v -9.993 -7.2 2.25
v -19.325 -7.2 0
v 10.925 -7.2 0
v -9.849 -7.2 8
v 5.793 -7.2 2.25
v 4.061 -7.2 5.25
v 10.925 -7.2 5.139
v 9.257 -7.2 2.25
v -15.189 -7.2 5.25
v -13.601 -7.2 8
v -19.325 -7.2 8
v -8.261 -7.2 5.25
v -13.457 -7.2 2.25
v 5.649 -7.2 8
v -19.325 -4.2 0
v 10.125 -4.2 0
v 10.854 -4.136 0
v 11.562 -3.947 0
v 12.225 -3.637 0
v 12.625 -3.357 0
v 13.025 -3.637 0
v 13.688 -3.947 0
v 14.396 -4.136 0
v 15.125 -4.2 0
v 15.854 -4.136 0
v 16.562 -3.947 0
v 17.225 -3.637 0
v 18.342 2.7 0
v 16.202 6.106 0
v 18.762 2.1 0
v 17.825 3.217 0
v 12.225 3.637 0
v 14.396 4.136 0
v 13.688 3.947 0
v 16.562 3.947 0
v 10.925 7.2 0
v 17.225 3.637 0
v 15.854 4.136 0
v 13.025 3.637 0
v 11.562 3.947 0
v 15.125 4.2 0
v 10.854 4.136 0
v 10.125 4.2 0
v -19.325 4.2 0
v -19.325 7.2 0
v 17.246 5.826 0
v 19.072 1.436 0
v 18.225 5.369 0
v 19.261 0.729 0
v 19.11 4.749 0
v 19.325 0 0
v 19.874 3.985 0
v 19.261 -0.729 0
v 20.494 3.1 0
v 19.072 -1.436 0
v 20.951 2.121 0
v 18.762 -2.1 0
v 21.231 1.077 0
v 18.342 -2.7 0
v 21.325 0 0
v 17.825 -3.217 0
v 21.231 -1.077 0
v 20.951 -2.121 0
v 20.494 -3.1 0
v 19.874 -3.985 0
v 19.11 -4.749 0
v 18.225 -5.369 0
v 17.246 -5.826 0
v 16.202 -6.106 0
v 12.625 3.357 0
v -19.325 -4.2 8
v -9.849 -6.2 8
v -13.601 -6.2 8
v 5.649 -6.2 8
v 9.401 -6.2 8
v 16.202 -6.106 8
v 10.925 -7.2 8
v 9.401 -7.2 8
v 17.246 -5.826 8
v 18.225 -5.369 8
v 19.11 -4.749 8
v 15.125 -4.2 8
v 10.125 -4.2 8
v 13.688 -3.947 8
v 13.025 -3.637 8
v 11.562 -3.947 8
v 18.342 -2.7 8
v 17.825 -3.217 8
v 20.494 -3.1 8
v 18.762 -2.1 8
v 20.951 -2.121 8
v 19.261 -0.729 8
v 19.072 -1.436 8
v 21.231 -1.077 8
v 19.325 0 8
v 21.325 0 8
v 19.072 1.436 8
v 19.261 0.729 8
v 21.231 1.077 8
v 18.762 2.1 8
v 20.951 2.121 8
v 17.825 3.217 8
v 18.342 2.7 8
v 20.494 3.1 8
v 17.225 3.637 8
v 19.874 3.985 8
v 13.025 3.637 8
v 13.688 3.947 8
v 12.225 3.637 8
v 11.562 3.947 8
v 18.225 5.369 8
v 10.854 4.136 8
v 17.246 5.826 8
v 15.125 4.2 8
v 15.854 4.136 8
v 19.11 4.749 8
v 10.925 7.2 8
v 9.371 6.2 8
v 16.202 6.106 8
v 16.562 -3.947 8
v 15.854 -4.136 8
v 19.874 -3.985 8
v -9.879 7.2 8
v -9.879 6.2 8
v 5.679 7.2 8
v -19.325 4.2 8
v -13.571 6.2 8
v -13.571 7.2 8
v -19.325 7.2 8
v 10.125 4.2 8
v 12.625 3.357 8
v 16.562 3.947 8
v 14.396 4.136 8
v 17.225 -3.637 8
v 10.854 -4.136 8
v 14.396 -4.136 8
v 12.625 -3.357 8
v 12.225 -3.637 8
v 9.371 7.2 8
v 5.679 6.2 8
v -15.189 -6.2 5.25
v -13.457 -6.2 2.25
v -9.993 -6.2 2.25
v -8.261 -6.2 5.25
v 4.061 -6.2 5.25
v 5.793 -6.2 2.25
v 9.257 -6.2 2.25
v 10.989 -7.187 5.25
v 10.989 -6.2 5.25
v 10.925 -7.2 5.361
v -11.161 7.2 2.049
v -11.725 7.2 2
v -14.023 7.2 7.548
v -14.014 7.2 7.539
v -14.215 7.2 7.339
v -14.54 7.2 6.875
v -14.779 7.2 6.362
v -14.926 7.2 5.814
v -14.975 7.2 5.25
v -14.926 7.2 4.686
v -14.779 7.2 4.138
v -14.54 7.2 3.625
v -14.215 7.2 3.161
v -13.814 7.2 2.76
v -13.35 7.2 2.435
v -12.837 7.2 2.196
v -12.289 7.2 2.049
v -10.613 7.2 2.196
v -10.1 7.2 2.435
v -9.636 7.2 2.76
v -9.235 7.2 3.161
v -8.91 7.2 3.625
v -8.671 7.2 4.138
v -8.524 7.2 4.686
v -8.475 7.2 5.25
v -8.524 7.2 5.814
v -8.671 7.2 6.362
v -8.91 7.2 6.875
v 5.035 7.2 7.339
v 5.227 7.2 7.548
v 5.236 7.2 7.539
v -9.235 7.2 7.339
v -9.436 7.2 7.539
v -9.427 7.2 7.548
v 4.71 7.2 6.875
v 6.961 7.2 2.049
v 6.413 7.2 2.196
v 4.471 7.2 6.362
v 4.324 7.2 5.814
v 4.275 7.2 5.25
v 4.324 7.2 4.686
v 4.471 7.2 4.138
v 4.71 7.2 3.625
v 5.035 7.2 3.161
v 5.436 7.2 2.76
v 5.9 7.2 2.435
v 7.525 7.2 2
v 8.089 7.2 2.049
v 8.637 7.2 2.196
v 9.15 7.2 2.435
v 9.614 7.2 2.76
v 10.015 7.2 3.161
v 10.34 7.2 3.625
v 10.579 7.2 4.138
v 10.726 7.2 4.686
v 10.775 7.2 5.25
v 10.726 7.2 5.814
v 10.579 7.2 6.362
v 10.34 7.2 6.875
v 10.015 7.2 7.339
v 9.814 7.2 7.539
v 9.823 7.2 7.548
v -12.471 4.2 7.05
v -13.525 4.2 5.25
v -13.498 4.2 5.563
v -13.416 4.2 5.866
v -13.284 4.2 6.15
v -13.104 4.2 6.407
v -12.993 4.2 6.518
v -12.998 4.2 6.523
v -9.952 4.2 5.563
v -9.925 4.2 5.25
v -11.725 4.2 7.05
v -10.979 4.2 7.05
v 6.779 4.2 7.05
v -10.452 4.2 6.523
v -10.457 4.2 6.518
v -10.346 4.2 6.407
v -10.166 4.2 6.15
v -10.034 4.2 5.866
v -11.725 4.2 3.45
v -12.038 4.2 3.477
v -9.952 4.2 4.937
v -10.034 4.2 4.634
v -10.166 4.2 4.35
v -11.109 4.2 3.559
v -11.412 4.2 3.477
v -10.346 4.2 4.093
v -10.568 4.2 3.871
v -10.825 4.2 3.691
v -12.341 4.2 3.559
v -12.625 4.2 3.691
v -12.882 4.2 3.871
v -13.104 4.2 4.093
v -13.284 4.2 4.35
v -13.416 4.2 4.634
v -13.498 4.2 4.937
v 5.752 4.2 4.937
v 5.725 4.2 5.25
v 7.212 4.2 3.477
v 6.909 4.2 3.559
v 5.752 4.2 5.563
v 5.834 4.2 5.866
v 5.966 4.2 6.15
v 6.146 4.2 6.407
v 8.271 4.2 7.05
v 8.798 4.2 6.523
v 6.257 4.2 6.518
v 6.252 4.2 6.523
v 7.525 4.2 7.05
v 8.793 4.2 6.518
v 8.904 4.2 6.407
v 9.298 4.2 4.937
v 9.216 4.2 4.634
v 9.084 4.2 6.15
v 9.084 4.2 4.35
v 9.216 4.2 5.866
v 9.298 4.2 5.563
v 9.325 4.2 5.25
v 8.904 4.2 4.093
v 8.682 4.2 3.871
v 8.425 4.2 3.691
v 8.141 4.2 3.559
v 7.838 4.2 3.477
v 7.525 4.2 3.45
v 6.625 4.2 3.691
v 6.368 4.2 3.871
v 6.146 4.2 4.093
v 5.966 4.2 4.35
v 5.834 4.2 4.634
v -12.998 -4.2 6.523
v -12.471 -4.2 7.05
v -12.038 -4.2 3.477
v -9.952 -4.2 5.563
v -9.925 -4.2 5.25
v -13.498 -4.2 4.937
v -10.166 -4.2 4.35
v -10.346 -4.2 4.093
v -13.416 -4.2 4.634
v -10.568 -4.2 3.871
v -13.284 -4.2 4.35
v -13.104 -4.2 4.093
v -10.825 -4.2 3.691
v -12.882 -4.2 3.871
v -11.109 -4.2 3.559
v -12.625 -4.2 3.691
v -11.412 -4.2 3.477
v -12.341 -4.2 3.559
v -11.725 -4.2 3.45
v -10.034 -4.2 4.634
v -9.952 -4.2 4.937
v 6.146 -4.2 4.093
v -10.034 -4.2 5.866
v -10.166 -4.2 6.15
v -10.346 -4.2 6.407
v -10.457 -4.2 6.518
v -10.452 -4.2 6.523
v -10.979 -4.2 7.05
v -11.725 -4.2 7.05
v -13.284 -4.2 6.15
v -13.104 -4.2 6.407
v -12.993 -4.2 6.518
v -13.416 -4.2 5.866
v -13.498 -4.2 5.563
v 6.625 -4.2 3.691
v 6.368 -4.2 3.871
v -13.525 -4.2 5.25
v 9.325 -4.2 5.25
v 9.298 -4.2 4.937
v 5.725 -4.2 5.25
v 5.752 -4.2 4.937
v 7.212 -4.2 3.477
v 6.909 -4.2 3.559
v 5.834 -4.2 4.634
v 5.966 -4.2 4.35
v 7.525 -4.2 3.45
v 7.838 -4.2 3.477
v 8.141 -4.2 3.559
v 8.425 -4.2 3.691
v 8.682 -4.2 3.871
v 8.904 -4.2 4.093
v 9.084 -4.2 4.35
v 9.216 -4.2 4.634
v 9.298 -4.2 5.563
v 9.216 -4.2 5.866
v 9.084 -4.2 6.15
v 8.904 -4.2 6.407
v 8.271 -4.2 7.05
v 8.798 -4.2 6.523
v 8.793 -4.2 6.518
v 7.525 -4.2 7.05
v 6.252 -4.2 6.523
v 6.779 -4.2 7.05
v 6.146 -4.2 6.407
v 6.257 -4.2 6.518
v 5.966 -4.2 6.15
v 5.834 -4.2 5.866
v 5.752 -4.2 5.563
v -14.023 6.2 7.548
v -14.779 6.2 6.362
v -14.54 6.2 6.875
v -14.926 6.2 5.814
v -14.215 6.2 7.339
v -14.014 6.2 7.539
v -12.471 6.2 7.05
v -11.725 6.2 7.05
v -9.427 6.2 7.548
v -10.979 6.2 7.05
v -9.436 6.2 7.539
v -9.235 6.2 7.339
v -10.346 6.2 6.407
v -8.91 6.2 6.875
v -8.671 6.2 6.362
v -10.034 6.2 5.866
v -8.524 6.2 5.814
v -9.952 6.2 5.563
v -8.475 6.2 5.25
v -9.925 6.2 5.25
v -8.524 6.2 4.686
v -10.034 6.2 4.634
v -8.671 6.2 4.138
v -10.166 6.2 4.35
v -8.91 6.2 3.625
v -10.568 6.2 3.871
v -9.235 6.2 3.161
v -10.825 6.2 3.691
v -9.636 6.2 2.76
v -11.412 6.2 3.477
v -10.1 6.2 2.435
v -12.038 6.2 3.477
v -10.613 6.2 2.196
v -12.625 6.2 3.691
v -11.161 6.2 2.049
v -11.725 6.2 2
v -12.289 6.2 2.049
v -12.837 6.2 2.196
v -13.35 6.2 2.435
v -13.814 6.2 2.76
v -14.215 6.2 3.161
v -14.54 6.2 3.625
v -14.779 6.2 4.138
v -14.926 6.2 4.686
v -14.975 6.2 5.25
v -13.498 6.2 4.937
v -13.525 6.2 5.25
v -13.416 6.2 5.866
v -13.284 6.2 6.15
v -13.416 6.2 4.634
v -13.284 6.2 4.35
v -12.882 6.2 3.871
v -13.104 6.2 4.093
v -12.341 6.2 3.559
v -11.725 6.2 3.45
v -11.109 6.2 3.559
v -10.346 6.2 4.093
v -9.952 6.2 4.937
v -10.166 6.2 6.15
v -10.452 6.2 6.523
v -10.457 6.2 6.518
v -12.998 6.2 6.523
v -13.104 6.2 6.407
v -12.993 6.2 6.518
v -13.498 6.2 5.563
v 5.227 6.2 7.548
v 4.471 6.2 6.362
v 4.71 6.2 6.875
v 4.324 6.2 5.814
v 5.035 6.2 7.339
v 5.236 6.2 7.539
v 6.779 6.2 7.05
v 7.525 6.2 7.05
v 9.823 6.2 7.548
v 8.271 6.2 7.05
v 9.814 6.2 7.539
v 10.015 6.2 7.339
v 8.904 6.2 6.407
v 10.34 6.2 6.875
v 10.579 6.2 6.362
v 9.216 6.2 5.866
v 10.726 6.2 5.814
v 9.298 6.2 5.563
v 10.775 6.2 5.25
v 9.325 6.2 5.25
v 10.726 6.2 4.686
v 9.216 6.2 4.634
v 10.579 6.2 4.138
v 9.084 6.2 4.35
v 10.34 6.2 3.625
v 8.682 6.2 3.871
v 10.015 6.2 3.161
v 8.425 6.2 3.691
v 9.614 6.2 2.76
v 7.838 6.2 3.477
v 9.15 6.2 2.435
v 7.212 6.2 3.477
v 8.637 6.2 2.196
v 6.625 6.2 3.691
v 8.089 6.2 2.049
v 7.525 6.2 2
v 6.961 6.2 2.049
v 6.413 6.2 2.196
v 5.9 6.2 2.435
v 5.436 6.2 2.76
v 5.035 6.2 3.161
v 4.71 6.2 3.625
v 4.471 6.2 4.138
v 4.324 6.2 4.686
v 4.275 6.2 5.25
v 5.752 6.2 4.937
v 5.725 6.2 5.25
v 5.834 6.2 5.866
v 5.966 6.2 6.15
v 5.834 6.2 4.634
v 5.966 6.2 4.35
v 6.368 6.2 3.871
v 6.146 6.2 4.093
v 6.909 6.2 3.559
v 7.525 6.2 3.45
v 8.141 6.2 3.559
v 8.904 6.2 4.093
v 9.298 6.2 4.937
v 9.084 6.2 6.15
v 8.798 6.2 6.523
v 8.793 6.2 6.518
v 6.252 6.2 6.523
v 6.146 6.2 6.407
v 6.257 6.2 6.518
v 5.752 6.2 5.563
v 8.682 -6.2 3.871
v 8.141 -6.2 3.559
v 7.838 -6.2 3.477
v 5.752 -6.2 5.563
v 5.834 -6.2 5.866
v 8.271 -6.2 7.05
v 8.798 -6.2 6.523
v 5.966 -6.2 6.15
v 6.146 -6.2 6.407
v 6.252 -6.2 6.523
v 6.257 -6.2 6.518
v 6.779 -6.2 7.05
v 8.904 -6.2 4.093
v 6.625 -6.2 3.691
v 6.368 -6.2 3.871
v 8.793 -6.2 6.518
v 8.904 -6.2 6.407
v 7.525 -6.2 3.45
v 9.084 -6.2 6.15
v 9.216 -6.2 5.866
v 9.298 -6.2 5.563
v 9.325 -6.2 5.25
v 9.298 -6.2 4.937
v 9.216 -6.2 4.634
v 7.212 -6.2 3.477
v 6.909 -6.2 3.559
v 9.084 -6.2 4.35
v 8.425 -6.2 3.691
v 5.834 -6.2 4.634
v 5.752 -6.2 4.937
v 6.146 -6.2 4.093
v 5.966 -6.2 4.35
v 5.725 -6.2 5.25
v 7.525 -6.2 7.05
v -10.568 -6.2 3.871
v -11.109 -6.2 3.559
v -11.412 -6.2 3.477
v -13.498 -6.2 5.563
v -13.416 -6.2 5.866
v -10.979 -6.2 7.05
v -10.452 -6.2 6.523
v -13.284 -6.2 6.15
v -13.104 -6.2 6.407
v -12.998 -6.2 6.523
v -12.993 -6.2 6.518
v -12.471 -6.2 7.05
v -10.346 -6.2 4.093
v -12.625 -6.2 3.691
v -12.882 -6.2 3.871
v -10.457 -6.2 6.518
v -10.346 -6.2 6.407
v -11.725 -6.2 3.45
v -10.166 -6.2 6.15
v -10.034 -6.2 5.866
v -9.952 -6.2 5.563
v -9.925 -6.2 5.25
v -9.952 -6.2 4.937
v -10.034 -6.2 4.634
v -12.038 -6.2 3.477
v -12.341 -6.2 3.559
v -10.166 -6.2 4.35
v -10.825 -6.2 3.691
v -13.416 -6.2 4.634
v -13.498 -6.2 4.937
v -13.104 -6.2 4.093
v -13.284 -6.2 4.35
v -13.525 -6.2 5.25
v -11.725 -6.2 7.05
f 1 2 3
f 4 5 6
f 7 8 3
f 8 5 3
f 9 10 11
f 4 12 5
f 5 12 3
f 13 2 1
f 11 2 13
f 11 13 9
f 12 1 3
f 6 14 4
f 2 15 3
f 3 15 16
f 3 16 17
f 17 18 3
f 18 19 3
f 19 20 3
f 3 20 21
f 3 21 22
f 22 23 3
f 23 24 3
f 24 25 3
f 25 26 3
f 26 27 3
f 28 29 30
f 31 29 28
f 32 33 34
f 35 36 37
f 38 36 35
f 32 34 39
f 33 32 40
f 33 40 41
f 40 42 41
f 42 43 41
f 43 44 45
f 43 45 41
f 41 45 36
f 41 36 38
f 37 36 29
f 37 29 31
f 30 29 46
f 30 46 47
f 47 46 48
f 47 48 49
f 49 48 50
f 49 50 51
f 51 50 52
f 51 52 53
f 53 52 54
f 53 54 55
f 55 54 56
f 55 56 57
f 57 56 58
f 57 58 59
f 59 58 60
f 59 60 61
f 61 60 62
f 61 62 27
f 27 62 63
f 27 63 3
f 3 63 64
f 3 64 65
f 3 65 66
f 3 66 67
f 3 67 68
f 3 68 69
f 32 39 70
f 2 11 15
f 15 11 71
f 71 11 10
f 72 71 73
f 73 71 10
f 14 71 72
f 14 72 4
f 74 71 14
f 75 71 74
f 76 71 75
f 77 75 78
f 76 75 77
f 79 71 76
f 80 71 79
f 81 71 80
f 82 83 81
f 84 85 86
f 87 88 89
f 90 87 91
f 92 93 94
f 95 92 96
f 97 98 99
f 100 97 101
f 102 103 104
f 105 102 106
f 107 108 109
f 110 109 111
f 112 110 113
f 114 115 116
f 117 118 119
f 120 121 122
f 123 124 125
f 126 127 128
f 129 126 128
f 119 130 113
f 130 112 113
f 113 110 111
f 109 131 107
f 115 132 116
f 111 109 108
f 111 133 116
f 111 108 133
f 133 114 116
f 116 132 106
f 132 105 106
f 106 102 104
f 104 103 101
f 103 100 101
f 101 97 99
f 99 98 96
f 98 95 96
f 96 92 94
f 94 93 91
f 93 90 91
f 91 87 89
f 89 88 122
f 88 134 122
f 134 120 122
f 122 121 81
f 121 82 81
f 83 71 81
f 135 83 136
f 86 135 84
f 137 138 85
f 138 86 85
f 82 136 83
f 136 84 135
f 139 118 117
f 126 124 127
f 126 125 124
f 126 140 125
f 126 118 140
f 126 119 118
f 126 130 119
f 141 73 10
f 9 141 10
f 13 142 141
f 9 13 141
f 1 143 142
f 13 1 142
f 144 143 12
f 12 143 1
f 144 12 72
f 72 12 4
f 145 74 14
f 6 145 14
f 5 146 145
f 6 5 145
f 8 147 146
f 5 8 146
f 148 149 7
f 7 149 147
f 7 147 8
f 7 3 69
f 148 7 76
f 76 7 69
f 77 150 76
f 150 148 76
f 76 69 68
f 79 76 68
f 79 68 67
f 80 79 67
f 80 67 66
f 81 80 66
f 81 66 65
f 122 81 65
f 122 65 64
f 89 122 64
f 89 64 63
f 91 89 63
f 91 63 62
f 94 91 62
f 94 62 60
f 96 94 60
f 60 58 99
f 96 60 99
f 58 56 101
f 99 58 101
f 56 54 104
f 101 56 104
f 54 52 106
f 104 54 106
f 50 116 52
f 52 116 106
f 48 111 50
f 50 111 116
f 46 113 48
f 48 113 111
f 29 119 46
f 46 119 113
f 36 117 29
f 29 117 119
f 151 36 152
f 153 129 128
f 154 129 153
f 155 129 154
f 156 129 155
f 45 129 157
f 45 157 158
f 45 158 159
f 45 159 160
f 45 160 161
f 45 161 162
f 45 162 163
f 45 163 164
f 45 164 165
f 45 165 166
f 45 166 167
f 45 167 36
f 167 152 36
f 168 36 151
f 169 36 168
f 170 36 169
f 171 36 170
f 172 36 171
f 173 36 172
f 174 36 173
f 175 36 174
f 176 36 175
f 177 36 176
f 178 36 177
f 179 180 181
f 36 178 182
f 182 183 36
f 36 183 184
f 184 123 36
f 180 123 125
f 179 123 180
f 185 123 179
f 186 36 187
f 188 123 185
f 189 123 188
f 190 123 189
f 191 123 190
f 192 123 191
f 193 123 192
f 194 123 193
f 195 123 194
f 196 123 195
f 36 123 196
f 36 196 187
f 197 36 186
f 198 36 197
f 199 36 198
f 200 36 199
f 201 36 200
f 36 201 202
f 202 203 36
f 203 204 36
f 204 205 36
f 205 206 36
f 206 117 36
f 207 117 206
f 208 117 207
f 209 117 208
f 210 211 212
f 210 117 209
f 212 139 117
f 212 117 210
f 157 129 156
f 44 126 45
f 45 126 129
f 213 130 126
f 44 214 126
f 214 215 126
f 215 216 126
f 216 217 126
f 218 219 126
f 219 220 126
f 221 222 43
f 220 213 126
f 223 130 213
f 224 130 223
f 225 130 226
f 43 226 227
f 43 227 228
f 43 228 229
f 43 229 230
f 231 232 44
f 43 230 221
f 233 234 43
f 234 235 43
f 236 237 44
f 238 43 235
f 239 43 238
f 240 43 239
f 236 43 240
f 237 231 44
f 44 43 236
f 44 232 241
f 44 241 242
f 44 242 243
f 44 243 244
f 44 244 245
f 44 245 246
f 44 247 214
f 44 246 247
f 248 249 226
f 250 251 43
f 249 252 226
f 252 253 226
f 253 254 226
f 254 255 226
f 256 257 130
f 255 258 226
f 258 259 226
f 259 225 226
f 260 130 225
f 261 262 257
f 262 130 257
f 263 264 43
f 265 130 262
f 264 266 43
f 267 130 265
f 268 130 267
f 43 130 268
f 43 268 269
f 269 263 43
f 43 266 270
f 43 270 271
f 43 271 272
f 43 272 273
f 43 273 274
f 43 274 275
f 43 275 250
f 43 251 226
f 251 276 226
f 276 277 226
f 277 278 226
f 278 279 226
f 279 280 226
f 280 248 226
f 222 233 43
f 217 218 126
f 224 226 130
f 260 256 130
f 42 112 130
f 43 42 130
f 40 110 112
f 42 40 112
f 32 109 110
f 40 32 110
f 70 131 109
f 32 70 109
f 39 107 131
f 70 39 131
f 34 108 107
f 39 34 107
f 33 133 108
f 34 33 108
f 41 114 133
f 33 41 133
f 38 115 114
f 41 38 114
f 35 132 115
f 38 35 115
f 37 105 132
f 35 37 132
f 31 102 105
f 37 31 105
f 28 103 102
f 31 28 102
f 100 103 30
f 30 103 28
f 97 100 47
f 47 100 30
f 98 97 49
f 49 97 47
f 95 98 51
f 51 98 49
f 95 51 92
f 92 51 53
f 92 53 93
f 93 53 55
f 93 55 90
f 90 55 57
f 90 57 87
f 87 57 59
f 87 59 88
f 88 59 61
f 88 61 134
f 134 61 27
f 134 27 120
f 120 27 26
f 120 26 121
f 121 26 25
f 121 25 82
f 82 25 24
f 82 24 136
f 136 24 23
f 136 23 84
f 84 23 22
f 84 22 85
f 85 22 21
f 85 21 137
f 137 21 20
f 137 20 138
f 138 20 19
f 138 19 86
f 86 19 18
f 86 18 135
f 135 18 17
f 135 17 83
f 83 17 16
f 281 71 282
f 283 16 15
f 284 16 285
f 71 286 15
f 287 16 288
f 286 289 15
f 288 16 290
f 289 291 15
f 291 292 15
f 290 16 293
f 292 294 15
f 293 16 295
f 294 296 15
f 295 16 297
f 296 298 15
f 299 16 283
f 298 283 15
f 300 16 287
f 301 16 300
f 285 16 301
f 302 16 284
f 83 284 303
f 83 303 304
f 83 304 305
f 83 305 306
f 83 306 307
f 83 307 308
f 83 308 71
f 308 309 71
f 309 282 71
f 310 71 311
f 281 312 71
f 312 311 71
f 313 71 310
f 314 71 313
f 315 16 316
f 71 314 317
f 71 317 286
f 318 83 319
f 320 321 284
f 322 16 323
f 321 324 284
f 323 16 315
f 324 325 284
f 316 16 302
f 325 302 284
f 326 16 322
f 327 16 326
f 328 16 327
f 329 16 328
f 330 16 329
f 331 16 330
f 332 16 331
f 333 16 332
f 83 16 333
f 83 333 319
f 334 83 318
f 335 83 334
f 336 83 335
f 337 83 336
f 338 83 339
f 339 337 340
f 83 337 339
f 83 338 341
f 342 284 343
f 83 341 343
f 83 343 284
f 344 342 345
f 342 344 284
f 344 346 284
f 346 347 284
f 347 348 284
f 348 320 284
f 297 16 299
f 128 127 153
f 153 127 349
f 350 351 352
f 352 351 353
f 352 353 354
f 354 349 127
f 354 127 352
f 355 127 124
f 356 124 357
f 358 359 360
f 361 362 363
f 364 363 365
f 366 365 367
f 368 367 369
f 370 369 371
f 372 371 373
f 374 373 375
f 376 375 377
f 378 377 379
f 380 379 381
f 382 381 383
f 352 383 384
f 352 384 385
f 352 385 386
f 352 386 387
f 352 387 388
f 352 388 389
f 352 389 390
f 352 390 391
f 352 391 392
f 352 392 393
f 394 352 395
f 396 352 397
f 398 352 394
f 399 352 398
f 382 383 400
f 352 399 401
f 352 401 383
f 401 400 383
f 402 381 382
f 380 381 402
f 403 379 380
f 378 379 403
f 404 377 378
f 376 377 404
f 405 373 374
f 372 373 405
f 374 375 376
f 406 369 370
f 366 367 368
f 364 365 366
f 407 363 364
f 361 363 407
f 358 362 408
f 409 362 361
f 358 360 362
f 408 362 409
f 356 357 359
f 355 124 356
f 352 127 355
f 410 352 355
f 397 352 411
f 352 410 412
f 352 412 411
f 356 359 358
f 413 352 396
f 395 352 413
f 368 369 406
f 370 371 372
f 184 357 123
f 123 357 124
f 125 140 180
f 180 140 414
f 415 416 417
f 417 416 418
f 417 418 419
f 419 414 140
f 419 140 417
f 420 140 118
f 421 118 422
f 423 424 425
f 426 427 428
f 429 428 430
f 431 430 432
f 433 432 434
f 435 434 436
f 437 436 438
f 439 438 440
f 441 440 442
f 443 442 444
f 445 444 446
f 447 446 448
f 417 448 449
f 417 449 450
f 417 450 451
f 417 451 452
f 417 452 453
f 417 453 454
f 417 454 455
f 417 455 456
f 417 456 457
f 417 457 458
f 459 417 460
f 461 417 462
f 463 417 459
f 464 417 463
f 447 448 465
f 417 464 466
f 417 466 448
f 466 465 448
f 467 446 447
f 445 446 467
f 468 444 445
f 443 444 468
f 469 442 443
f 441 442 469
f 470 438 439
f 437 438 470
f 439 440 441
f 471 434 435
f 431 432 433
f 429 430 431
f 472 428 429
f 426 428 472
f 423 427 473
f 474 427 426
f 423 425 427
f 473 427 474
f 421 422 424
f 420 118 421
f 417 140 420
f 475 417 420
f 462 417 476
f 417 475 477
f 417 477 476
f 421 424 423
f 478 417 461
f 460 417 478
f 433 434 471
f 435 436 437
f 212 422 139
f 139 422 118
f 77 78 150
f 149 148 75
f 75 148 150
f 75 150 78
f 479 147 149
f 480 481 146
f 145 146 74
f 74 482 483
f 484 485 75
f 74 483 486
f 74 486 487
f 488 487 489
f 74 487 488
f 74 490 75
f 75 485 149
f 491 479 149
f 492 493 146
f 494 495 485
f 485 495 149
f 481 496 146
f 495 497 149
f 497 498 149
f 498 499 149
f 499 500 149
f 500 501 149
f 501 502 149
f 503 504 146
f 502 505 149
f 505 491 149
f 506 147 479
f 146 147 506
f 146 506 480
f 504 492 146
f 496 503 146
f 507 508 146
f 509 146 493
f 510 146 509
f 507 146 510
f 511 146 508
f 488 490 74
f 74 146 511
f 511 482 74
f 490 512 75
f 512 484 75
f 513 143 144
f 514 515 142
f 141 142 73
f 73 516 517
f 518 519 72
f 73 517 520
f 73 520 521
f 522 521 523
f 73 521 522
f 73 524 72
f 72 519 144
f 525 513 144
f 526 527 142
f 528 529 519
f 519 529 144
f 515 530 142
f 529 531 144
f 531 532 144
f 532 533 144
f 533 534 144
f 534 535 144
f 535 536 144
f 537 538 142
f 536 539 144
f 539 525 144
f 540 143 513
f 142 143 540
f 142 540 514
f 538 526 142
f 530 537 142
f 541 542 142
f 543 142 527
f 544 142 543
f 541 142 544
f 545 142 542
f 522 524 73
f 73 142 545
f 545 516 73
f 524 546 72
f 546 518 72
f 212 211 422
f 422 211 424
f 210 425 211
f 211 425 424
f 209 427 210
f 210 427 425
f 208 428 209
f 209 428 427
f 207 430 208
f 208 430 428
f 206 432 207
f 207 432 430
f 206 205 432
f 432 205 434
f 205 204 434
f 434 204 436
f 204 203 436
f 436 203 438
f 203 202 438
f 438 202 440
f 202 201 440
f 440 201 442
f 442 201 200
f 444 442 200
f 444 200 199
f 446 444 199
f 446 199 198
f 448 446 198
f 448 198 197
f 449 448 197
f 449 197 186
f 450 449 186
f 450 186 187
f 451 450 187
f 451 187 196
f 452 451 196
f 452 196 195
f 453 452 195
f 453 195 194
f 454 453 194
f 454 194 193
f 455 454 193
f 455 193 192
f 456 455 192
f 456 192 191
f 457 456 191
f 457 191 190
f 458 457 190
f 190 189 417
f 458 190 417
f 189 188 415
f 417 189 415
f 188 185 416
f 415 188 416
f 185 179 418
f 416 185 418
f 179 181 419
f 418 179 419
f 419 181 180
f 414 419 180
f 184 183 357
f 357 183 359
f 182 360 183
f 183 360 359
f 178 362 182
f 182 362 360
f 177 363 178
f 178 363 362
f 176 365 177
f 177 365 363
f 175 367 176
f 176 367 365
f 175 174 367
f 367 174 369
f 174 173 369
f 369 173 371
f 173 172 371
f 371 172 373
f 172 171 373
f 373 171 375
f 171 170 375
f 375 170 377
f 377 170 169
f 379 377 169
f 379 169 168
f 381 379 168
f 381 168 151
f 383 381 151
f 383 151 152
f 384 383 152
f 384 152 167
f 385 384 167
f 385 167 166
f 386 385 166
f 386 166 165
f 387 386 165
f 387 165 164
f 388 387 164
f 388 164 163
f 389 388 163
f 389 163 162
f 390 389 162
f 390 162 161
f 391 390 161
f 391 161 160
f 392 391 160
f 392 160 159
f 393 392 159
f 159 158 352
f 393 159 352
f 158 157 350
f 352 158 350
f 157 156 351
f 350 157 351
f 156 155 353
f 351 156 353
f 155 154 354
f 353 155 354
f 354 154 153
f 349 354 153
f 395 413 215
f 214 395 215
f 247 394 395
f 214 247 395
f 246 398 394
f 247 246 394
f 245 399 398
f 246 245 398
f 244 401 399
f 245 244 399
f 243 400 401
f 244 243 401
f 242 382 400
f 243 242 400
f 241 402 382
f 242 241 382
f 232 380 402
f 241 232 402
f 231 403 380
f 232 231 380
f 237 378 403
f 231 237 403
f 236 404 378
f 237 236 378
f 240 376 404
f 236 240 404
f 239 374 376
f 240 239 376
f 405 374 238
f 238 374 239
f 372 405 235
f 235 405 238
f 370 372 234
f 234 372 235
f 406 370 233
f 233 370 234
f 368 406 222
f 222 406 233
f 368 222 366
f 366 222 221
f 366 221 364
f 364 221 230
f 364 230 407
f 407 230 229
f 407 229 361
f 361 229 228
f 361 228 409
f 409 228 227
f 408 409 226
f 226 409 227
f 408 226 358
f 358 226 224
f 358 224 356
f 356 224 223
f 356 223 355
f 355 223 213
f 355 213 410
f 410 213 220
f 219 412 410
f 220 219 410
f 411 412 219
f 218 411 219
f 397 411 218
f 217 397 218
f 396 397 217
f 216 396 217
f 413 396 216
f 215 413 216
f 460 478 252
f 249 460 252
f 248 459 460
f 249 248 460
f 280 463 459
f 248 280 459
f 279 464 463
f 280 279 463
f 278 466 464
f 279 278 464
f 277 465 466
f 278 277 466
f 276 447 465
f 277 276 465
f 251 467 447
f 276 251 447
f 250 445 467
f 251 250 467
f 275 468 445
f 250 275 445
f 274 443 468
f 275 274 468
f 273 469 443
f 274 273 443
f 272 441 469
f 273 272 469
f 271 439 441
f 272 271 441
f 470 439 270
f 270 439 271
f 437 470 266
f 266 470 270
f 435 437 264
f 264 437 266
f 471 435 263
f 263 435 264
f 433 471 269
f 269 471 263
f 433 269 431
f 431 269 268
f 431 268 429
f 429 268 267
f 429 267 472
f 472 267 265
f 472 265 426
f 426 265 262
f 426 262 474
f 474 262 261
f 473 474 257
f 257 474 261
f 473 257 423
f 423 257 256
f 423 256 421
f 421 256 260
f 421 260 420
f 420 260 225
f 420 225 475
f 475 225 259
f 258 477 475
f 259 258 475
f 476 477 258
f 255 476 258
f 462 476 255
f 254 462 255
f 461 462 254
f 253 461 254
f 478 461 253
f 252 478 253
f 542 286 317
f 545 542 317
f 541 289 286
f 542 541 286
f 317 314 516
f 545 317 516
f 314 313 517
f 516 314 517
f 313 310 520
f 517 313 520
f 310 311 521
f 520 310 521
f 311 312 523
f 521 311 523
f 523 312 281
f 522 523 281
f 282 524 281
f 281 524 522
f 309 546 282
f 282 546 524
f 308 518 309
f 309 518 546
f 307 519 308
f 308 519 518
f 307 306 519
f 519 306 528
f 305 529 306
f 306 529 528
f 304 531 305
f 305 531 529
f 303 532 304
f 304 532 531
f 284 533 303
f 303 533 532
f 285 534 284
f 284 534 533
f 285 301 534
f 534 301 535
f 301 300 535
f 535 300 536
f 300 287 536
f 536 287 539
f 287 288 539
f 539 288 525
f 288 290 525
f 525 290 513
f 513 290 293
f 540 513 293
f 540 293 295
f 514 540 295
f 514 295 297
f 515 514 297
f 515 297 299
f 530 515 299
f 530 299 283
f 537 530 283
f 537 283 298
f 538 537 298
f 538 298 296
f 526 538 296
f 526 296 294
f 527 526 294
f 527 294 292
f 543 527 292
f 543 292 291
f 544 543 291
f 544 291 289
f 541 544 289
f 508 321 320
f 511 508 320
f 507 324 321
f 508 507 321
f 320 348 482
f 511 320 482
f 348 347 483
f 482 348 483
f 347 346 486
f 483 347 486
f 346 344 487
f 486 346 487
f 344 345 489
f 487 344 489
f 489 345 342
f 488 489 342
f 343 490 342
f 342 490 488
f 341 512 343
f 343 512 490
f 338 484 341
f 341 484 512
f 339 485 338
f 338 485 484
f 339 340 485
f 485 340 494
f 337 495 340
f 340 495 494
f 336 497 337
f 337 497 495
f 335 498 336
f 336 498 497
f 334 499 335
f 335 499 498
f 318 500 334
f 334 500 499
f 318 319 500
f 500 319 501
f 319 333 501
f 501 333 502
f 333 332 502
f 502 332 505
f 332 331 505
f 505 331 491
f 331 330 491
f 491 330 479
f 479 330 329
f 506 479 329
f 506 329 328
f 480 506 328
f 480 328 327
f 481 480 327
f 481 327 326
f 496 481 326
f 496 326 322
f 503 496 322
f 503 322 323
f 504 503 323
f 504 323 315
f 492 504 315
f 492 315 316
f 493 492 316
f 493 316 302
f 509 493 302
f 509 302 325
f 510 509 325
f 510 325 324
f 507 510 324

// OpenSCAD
$fn=36;

holder();

angle = 130;
wall = 2;
slop = .2;
hole_height = 2.75;
hole_sep = 19.25;

height = 8;
length = hole_sep+wall*3;

endstop_width = 7.5;

m8_dia = 8;
m8_rad = m8_dia/2+slop;

m3_nut_rad = 6/cos(30)/2;
m3_nut_height = 3;
m3_rad = 1.8;
m3_cap_rad = 3.25;


module holder(){
	clamp_offset = 5;
	length = length+clamp_offset;
	difference(){
		hull(){
			translate([-m8_rad,0,height/2]) cube([length, m8_rad*2+wall*3, height],center=true);
			translate([length/2,0,height/2]) cylinder(r=m8_rad+wall, h=height, center=true);

			//screwholes
			
		}
		
		translate([length/2,0,height/2]) cylinder(r=m8_rad, h=height+1, center=true);
		
		//clamp
		translate([length/2-clamp_offset,0,height/2]) cylinder(r=m8_rad, h=height+1, center=true);
	
		translate([-clamp_offset,0,height/2]) cube([length, m8_rad*2, height+1],center=true);

		//screwholes
		for(i=[-1,1]) translate([i*hole_sep/2-m8_rad/2, 0, height-hole_height]) rotate([-90,0,0]) {
			cap_cylinder(r=m3_rad, h=length, center=true);
			translate([0,0,m8_rad+wall]) cap_cylinder(r=m3_cap_rad, h=wall);
			translate([0,0,-m8_rad-wall*2]) cylinder(r=m3_nut_rad, h=wall, $fn=6);
		}
	}
}


module holder_old(){
	difference(){
		union(){
			translate([0,0,height/2]) rotate([0,90,0]) round_clip(rad = m8_rad, height = height, wall = wall, angle=angle, support = 0, clamp=1, solid = 1);
			translate([wall/2,0,height/2]) cube([wall,hole_sep+m3_rad*2+wall*2.5,height],center=true);

			for(i=[-1,1]) translate([wall/2,hole_sep/2*i,hole_height]) rotate([0,90,0]) rotate([0,0,0]) cylinder(r1=wall+m3_nut_rad, r2=wall/2+m3_nut_rad, h=m3_nut_height+.1, $fn=6);
		}

		for(i=[-1,1]) translate([wall,hole_sep/2*i,hole_height]) rotate([0,90,0]) {
			cylinder(r=m3_nut_rad, h=m3_nut_height+.5, $fn=6);
			rotate([0,0,-90]) cap_cylinder(r=m3_rad, h=height*2, center=true);
		}

		translate([0,0,height/2]) rotate([0,90,0]) round_clip(rad = m8_rad, height = height, wall = wall, angle=angle, support = 0, clamp=1, solid = 0);

		//clean top and bot
		for(i=[-1,1]) translate([0,0,25*i+height/2+height/2*i]) cube([50,50,50], center=true);
	}
}

module round_clip(rad=8, height=10, wall=3, angle=45, support=0, clamp=0, solid=0){
	translate([0,0,wall+rad])
	rotate([0,90,0])
	if(solid == 1){
		union(){
			translate([0,0,height/2]) rotate([0,0,30]) cylinder(r=(wall/2+rad)/cos(30), h=height*2, center=true);

			if(clamp==1){
				for(i=[-1,1]) rotate([0,0,i*angle/2]) translate([-rad-wall/2,0,0]) rotate([0,0,-i*angle/2]) rotate([i*90,0,0]) hull(){
					translate([wall/2, 0, 0]) cylinder(r1=wall+m3_nut_rad, r2=wall/2+m3_nut_rad, h=m3_nut_height+.1, $fn=6, center=true);
					translate([-m8_rad, 0, 0]) cylinder(r1=wall+m3_nut_rad, r2=wall/2+m3_nut_rad, h=m3_nut_height+.1, $fn=6, center=true);
				}
			}
		}
	}else{
		//hollow
		cylinder(r=rad, h=height*4, center=true);
		hull(){
			if(support==1){
				translate([0,0,rad+wall+height/2]) rotate([90,0,0]) cylinder(r=rad+wall, h=height*3, center=true);
			}else{
				translate([rad*2,0,rad+wall+height/2]) rotate([90,0,0]) cylinder(r=rad+wall, h=height*3, center=true);
			}
			translate([-rad,0,rad+wall+height/2]) rotate([90,0,0]) cylinder(r=rad+wall, h=height*3, center=true);
		}

		//zip tie slot
		*translate([-1,0,0]) difference(){
			cylinder(r=(wall/2+rad+2)/cos(30), h=3, center=true);
			cylinder(r=(wall/2+rad)/cos(30), h=4, center=true);
		}
		
		//clip cutout
		difference(){
			for(i=[-1,0,1]) rotate([0,0,i*(angle/2-30)]) translate([-rad*2,0,0]) cylinder(r=rad*2, h=height*3, center=true, $fn=3);
			for(i=[-1,1]) rotate([0,0,i*angle/2]) translate([-rad-wall/2,0,0]) cylinder(r=wall/2, h=height*3, center=true);
			if(clamp == 1){
				for(i=[-1,1]) rotate([0,0,i*angle/2]) translate([-rad-wall/2,0,0]) rotate([0,0,-i*angle/2]) rotate([i*90,0,0]) hull(){
					cylinder(r1=wall+m3_nut_rad, r2=wall/2+m3_nut_rad, h=m3_nut_height+.1, $fn=6, center=true);
					translate([-m8_rad, 0, 0]) cylinder(r1=wall+m3_nut_rad, r2=wall/2+m3_nut_rad, h=m3_nut_height+.1, $fn=6, center=true);
				}
			}
		}

		if(clamp == 1){
			rotate([0,0,1*angle/2]) translate([-rad-wall/2,0,0]) rotate([0,0,-1*angle/2]) rotate([i*90,0,0]) rotate([90,0,0]) translate([-m8_rad, 0, -m8_rad*4]) cylinder(r=m3_rad, h=m8_rad*6);
			rotate([0,0,1*angle/2]) translate([-rad-wall/2,0,0]) rotate([0,0,-1*angle/2]) rotate([i*90,0,0]) rotate([90,0,0]) translate([-m8_rad, 0, 0]) cylinder(r=m3_cap_rad, h=wall);
			rotate([0,0,-1*angle/2]) translate([-rad-wall/2,0,0]) rotate([0,0,1*angle/2]) rotate([i*90,0,0]) rotate([90,0,0]) translate([-m8_rad, 0, -wall]) cylinder(r=m3_nut_rad, h=wall, $fn=6);
		}
	}
}


module tear(r, h) {
  union() {
    cylinder(r=r, h=h);
    rotate([0, 0, 135]) cube([r, r, h]);
  }
}

module crap(){
difference() {
  union() {
		translate([1,.5,0])
		cube([15, 11.2, 7]);

		translate([-13, 17, 0])
		cube([28, 2.5, 7]);

		translate([8.4, 11.2, 0])
		cylinder(r=16 / 2, h=7);
  }

	translate([-0.1, 4.9, 3.3])
	rotate([0, 90, 0])
	tear(r=3.1 / 2, h=23);

	translate([8.4, 11.2, -1])
	cylinder(r=4.2, h=10);

	translate([4.7, -1, -1])
	cube([7.2, 11.2, 10]);

		translate([-9.25, 21, 4.5])
		rotate([90, 0, 0])
		cylinder(r=1.8, h=9);

		translate([-9.25, 18, 4.5])
		rotate([90, 0, 0])
		rotate([0,0,30]) cylinder(r=3/cos(30), h=3, $fn=6);	

		translate([10, 18, 4.5])
		rotate([90, 0, 0])
		rotate([0,0,30]) cylinder(r=3.2, h=3, $fn=6);
		translate([10, 18, 6])
		rotate([90, 0, 0])
		rotate([0,0,30]) cylinder(r=3.2, h=3, $fn=6);
		
		translate([10,19.6, 4.5])
		rotate([90, 0, 0])
		cylinder(r=1.8, h=9);

  translate([3.9, -5, -1])
  cylinder(r=1.5, h=6);
}
}

module cap_cylinder(r=1, h=1, center=false){
	render() union(){
		cylinder(r=r, h=h, center=center);
		intersection(){
			rotate([0,0,22.5]) cylinder(r=r/cos(180/8), h=h, $fn=8, center=center);
			translate([0,-r/cos(180/4),0]) rotate([0,0,0]) cylinder(r=r/cos(180/4), h=h, $fn=4, center=center);
		}
	}
}
